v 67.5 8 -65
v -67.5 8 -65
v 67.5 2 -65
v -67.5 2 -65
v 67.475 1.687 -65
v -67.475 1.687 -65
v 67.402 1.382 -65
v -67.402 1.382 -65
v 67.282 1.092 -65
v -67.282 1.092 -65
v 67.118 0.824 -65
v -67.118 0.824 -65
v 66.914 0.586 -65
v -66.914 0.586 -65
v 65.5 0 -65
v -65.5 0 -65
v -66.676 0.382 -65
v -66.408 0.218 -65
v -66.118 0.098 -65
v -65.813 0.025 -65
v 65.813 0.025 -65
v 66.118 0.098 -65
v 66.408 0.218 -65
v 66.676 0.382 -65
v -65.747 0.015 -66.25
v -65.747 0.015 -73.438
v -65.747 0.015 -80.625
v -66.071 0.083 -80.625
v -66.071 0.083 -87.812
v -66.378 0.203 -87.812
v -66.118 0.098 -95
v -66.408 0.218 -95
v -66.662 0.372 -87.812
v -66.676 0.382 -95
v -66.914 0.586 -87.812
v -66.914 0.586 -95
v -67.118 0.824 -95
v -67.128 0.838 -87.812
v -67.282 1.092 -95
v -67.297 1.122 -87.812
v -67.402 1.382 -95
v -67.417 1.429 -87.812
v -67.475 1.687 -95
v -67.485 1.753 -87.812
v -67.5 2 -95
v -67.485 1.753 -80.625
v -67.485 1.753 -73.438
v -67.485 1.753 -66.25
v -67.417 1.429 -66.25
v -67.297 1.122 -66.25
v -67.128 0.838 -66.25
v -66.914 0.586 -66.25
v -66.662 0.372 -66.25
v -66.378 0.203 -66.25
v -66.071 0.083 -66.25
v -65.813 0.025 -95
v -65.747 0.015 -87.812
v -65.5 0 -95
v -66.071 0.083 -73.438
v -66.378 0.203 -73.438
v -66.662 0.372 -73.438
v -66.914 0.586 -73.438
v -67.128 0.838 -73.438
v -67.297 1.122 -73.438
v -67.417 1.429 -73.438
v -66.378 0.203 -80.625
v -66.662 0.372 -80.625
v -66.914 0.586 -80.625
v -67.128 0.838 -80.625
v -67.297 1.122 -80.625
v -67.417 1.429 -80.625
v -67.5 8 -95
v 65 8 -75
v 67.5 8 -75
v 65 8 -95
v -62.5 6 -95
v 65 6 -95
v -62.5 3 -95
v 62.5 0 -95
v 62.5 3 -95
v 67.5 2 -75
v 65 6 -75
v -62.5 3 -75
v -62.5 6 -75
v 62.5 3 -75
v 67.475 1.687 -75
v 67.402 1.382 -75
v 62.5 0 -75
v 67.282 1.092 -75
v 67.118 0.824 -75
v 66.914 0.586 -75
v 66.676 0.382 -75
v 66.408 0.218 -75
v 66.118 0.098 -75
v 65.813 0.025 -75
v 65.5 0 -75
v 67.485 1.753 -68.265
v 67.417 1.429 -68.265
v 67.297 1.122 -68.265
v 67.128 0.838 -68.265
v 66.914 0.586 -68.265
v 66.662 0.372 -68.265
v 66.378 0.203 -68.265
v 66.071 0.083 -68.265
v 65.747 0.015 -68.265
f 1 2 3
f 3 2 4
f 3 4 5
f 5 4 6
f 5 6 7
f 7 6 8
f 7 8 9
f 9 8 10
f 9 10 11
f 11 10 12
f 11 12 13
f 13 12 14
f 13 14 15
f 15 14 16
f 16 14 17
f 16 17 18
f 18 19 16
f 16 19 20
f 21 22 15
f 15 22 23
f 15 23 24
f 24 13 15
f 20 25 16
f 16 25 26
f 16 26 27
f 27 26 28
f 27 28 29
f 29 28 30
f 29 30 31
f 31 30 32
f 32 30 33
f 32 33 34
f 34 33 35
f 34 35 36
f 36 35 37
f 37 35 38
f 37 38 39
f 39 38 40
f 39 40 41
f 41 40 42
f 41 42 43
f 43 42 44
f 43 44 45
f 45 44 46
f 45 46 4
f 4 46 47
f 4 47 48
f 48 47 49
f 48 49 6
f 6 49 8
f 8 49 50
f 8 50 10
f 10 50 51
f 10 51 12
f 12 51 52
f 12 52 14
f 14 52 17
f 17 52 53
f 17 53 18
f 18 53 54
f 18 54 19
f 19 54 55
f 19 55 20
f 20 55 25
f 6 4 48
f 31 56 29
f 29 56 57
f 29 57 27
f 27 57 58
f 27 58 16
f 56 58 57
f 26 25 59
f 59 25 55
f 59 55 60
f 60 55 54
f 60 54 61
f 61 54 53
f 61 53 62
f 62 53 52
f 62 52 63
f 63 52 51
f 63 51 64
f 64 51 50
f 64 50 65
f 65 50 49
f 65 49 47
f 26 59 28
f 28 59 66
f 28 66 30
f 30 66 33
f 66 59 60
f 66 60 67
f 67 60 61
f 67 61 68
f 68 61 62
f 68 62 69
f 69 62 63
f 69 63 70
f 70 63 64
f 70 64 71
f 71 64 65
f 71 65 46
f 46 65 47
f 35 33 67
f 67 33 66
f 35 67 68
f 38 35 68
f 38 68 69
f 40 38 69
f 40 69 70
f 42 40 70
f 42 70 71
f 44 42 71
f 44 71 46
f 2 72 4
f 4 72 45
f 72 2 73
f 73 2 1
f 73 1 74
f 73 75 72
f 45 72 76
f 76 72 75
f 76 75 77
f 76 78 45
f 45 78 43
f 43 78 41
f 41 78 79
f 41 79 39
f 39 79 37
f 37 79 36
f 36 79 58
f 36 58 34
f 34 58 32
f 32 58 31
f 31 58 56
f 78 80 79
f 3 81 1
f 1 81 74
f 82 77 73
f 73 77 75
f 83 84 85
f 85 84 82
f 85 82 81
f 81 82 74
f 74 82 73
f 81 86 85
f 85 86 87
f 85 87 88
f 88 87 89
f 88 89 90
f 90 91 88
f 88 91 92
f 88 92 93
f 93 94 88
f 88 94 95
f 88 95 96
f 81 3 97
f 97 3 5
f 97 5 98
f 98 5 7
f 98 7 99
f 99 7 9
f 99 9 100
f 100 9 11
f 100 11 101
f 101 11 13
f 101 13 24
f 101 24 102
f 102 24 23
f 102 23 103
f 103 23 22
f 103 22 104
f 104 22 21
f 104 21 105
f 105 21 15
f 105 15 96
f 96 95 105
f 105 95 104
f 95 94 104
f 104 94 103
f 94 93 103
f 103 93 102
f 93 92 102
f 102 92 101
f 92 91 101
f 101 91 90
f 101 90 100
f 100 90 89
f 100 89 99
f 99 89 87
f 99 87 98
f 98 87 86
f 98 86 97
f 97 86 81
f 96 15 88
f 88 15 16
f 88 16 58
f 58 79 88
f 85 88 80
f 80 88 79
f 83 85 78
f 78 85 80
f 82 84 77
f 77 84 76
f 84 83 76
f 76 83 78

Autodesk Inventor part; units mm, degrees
sketch "Sketch1" plane through (0, 0, 0) normal (0, 1, 0) x (-1, 0, 0)
  line L0 (-67.5, 75) -> (67.5, 75)
  line L1 (67.5, 75) -> (67.5, -75)
  line L2 (67.5, -75) -> (-67.5, -75)
  line L3 (-67.5, -75) -> (-67.5, 75)
  line L4 (-67.5, 75) -> (67.5, -75) construction
  line L5 (67.5, 75) -> (-67.5, -75) construction
  point P0 (0, 0)
  dimension "d0" = 135
  dimension "d1" = 150
extrude "Extrusion1" add sketch "Sketch1" along normal blind 8
sketch "Sketch3" plane through (0, 8, 0) normal (0, 1, 0) x (1, 0, 0)
  line L0 (-67.5, -75) -> (67.5, -75) projected
  line L1 (67.5, -75) -> (67.5, 75) projected
  line L2 (67.5, 75) -> (-67.5, 75) projected
  line L3 (-67.5, 75) -> (-67.5, -75) projected
  line L4 (62.5, 75) -> (62.5, -70)
  line L5 (-67.5, -75) -> (67.5, -75) projected
  line L6 (67.5, -75) -> (67.5, 75) projected
  line L7 (0, 0) -> (0, -83) construction
  line L8 (-62.5, 75) -> (-62.5, -70)
  line L9 (62.5, -70) -> (-62.5, -70)
  dimension "d4" = 5
  dimension "d5" = 5
extrude "Extrusion2" add sketch "Sketch3" along normal blind 38.7 contours L3 L2 L8 L9 L4 L1 L0
sketch "Sketch4" plane through (67.5, 0, -75) normal (0, 0, -1) x (-1, 0, 0)
  line L0 (135, 0) -> (0, 0) projected
  line L1 (135, 0) -> (135, 46.7) projected
  line L2 (130, 46.7) -> (135, 46.7) projected
  line L3 (130, 8) -> (130, 46.7) projected
  line L4 (5, 8) -> (130, 8) projected
  line L5 (5, 8) -> (5, 46.7) projected
  line L6 (0, 46.7) -> (5, 46.7) projected
  line L7 (0, 0) -> (0, 46.7) projected
  line L8 (130, 8) -> (5, 8) projected
  line L9 (5, 8) -> (5, 0)
  line L10 (130, 8) -> (130, 0)
  line L11 (0, 0) -> (135, 0) projected
  line L12 (0, 0) -> (0, 46.7) projected
  line L13 (5, 3) -> (130, 3)
  line L14 (5, 8) -> (130, 8) projected
  line L15 (5, 6) -> (130, 6)
  line L16 (5, 8) -> (0, 8)
  line L17 (135, 0) -> (0, 0) projected
  point P0 (67.5, 0)
  dimension "d8" = 3
  dimension "d9" = 3
extrude "Extrusion3" add sketch "Sketch4" along normal blind 20 contours L0 L10 L3 L2 L1 | L0 L9 L13 L10 | L15 L9 L4 L10 | L7 L6 L5 L16
sketch "Sketch6" plane through (67.5, 0, 75) normal (1, 0, 0) x (0, 0, -1)
  line L0 (150, 0) -> (150, 8)
  line L1 (0, 0) -> (0, 46.7) projected
  line L2 (150, 8) -> (170, 8) projected
  line L3 (0, 46.7) -> (170, 46.7) projected
  line L4 (170, 46.7) -> (170, 8) projected
  line L5 (170, 21) -> (153, 21)
  line L6 (153, 21) -> (153, 33)
  line L7 (153, 33) -> (170, 33)
  line L8 (170, 33) -> (170, 21)
  point P0 (75, 0)
  dimension "d92" = 13
  dimension "d93" = 17
  dimension "d94" = 12
fillet "Fillet1" radius 2 11 edges at (67.5, 0, 0) (67.5, 46.7, -10) (67.5, 23.35, 75) (0, 46.7, 75) (0, 0, 75) (-67.5, 46.7, -10) (-67.5, 23.35, 75) (-67.5, 0, -10) (62.5, 46.7, -12.5) (-62.5, 46.7, -12.5) (0, 46.7, 70)
ref_plane "Work Plane4" through (-67.5, 9.7, -88) normal (-1, 0, 0) x (0, 0, 1)
sketch "Sketch15" plane through (62.5, 6, -75) normal (1, 0, 0) x (0, 0, -1)
  line L0 (0, 0) -> (0, 2) projected
  line L1 (0, 0) -> (20, 0) projected
  line L2 (20, 2) -> (20, 0) projected
  line L3 (0, 2) -> (20, 2) projected
  point P0 (-75, -6)
extrude "Extrusion8" add sketch "Sketch15" along normal blind 2.5
sketch "Sketch16" plane through (0, 8, 0) normal (0, 1, 0) x (1, 0, 0)
  line L0 (-62.5, -35) -> (-46.5, -35)
  line L1 (-46.5, -35) -> (-46.5, 5)
  line L2 (-46.5, 5) -> (-62.5, 5)
  line L3 (-62.5, 5) -> (-62.5, -35)
  line L4 (62.5, -70) -> (-62.5, -70) projected
  line L5 (-62.5, -70) -> (-62.5, 95) projected
  line L6 (46.5, -70) -> (62.5, -70)
  line L7 (62.5, -70) -> (62.5, -30)
  line L8 (62.5, -30) -> (46.5, -30)
  line L9 (46.5, -30) -> (46.5, -70)
  line L10 (62.5, 95) -> (62.5, -70) projected
  point P0 (0, 0)
  dimension "d39" = 35
  dimension "d40" = 0
  dimension "d41" = 16
  dimension "d42" = 40
  dimension "d43" = 0
  dimension "d44" = 0
  dimension "d45" = 40
  dimension "d46" = 16
extrude "Extrusion9" add sketch "Sketch16" along normal blind 16
fillet "Fillet4" radius 1 8 edges at (46.5, 24, 50) (54.5, 24, 30) (46.5, 16, 30) (-46.5, 24, 15) (-46.5, 16, -5) (-54.5, 24, 35) (-54.5, 24, -5) (-46.5, 16, 35)
sketch "Sketch17" plane through (0, 24, 0) normal (0, 1, 0) x (1, 0, 0)
  circle A0 centre (-56.5, -25) radius 2.25
  line L0 (-62.5, -34) -> (-62.5, 4) projected
  line L1 (-47.5, -34) -> (-62.5, -34) projected
  circle A1 centre (54.5, -57.5) radius 2.25
  line L2 (47.5, -70) -> (47.5, -31) projected
  line L3 (47.5, -31) -> (62.5, -31) projected
  line L4 (62.5, -70) -> (50.5, -70) projected
  point P0 (0, 0)
  dimension "d50" = 4.5
  dimension "d51" = 6
  dimension "d52" = 9
  dimension "d53" = 4.5
  dimension "d54" = 7
  dimension "d90" = 12.5
extrude "Extrusion10" cut sketch "Sketch17" against normal blind 12
ref_plane "Work Plane5" through (-62.5, 9.7, -88) normal (1, 0, 0) x (0, 0, -1)
sketch "Sketch18" plane through (-62.5, 9.7, -88) normal (1, 0, 0) x (0, 0, -1)
  circle A0 centre (-58, 19) radius 2.25
  circle A1 centre (-27.2, 19) radius 2.25
  line L0 (0, 8.1) -> (0, 14.1)
  line L1 (-27.2, 19) -> (-58, 19)
  line L2 (7, 37) -> (-160, 37) projected
  line L3 (-158, -1.7) -> (-158, 35) projected
  point P0 (-88, -9.7)
  dimension "d60" = 4.5
  dimension "d61" = 4.5
  dimension "d62" = 30.8
  dimension "d67" = 100
  dimension "d91" = 18
extrude "Extrusion11" cut sketch "Sketch18" against normal through all
ref_plane "Work Plane3" through (0, 22.5, 0) normal (0, 1, 0) x (1, 0, 0)
sketch "Sketch21" plane through (0, 22.5, 0) normal (0, 1, 0) x (1, 0, 0)
  circle A0 centre (54.5, -57.5) radius 2.25 projected
  line L0 (50.75, -55.3349) -> (54.5, -53.1699)
  line L1 (54.5, -53.1699) -> (58.25, -55.3349)
  line L2 (58.25, -55.3349) -> (58.25, -59.6651)
  line L3 (58.25, -59.6651) -> (54.5, -61.8301)
  line L4 (54.5, -61.8301) -> (50.75, -59.6651)
  line L5 (50.75, -59.6651) -> (50.75, -55.3349)
  line L6 (-62.5, -35) -> (-62.5, -70) projected
  line L7 (46.5, -70) -> (46.5, -31) projected
  circle A1 centre (-56.5, -25) radius 2.25 projected
  line L8 (-52.75, -27.1651) -> (-56.5, -29.3301)
  line L9 (-56.5, -29.3301) -> (-60.25, -27.1651)
  line L10 (-60.25, -27.1651) -> (-60.25, -22.8349)
  line L11 (-60.25, -22.8349) -> (-56.5, -20.6699)
  line L12 (-56.5, -20.6699) -> (-52.75, -22.8349)
  line L13 (-52.75, -22.8349) -> (-52.75, -27.1651)
  point P0 (0, 0)
  dimension "d78" = 7.5
  dimension "d79" = 7.5
extrude "Extrusion13" cut sketch "Sketch21" against normal blind 3.15
extrude "Extrusion14" cut sketch "Sketch6" against normal through all
sketch "Sketch22" plane through (0, 8, 0) normal (0, 1, 0) x (1, 0, 0)
  line L0 (224, -151) -> (-256, -151)
  line L1 (-256, -151) -> (-256, 143)
  line L2 (-256, 143) -> (224, 143)
  line L3 (224, 143) -> (224, -151)
  point P0 (0, 0)
extrude "Extrusion15" cut sketch "Sketch22" along normal through all
ref_plane "Work Plane6" through (62.5, 3, -65) normal (0, 0, -1) x (-1, 0, 0)
sketch "Sketch23" plane through (62.5, 3, -65) normal (0, 0, -1) x (-1, 0, 0)
  line L0 (-63, 29) -> (227, 29)
  line L1 (227, 29) -> (227, -39)
  line L2 (227, -39) -> (-63, -39)
  line L3 (-63, -39) -> (-63, 29)
  point P0 (62.5, -3)
extrude "Extrusion16" cut sketch "Sketch23" against normal through all
properties part number "Prova supporti"
